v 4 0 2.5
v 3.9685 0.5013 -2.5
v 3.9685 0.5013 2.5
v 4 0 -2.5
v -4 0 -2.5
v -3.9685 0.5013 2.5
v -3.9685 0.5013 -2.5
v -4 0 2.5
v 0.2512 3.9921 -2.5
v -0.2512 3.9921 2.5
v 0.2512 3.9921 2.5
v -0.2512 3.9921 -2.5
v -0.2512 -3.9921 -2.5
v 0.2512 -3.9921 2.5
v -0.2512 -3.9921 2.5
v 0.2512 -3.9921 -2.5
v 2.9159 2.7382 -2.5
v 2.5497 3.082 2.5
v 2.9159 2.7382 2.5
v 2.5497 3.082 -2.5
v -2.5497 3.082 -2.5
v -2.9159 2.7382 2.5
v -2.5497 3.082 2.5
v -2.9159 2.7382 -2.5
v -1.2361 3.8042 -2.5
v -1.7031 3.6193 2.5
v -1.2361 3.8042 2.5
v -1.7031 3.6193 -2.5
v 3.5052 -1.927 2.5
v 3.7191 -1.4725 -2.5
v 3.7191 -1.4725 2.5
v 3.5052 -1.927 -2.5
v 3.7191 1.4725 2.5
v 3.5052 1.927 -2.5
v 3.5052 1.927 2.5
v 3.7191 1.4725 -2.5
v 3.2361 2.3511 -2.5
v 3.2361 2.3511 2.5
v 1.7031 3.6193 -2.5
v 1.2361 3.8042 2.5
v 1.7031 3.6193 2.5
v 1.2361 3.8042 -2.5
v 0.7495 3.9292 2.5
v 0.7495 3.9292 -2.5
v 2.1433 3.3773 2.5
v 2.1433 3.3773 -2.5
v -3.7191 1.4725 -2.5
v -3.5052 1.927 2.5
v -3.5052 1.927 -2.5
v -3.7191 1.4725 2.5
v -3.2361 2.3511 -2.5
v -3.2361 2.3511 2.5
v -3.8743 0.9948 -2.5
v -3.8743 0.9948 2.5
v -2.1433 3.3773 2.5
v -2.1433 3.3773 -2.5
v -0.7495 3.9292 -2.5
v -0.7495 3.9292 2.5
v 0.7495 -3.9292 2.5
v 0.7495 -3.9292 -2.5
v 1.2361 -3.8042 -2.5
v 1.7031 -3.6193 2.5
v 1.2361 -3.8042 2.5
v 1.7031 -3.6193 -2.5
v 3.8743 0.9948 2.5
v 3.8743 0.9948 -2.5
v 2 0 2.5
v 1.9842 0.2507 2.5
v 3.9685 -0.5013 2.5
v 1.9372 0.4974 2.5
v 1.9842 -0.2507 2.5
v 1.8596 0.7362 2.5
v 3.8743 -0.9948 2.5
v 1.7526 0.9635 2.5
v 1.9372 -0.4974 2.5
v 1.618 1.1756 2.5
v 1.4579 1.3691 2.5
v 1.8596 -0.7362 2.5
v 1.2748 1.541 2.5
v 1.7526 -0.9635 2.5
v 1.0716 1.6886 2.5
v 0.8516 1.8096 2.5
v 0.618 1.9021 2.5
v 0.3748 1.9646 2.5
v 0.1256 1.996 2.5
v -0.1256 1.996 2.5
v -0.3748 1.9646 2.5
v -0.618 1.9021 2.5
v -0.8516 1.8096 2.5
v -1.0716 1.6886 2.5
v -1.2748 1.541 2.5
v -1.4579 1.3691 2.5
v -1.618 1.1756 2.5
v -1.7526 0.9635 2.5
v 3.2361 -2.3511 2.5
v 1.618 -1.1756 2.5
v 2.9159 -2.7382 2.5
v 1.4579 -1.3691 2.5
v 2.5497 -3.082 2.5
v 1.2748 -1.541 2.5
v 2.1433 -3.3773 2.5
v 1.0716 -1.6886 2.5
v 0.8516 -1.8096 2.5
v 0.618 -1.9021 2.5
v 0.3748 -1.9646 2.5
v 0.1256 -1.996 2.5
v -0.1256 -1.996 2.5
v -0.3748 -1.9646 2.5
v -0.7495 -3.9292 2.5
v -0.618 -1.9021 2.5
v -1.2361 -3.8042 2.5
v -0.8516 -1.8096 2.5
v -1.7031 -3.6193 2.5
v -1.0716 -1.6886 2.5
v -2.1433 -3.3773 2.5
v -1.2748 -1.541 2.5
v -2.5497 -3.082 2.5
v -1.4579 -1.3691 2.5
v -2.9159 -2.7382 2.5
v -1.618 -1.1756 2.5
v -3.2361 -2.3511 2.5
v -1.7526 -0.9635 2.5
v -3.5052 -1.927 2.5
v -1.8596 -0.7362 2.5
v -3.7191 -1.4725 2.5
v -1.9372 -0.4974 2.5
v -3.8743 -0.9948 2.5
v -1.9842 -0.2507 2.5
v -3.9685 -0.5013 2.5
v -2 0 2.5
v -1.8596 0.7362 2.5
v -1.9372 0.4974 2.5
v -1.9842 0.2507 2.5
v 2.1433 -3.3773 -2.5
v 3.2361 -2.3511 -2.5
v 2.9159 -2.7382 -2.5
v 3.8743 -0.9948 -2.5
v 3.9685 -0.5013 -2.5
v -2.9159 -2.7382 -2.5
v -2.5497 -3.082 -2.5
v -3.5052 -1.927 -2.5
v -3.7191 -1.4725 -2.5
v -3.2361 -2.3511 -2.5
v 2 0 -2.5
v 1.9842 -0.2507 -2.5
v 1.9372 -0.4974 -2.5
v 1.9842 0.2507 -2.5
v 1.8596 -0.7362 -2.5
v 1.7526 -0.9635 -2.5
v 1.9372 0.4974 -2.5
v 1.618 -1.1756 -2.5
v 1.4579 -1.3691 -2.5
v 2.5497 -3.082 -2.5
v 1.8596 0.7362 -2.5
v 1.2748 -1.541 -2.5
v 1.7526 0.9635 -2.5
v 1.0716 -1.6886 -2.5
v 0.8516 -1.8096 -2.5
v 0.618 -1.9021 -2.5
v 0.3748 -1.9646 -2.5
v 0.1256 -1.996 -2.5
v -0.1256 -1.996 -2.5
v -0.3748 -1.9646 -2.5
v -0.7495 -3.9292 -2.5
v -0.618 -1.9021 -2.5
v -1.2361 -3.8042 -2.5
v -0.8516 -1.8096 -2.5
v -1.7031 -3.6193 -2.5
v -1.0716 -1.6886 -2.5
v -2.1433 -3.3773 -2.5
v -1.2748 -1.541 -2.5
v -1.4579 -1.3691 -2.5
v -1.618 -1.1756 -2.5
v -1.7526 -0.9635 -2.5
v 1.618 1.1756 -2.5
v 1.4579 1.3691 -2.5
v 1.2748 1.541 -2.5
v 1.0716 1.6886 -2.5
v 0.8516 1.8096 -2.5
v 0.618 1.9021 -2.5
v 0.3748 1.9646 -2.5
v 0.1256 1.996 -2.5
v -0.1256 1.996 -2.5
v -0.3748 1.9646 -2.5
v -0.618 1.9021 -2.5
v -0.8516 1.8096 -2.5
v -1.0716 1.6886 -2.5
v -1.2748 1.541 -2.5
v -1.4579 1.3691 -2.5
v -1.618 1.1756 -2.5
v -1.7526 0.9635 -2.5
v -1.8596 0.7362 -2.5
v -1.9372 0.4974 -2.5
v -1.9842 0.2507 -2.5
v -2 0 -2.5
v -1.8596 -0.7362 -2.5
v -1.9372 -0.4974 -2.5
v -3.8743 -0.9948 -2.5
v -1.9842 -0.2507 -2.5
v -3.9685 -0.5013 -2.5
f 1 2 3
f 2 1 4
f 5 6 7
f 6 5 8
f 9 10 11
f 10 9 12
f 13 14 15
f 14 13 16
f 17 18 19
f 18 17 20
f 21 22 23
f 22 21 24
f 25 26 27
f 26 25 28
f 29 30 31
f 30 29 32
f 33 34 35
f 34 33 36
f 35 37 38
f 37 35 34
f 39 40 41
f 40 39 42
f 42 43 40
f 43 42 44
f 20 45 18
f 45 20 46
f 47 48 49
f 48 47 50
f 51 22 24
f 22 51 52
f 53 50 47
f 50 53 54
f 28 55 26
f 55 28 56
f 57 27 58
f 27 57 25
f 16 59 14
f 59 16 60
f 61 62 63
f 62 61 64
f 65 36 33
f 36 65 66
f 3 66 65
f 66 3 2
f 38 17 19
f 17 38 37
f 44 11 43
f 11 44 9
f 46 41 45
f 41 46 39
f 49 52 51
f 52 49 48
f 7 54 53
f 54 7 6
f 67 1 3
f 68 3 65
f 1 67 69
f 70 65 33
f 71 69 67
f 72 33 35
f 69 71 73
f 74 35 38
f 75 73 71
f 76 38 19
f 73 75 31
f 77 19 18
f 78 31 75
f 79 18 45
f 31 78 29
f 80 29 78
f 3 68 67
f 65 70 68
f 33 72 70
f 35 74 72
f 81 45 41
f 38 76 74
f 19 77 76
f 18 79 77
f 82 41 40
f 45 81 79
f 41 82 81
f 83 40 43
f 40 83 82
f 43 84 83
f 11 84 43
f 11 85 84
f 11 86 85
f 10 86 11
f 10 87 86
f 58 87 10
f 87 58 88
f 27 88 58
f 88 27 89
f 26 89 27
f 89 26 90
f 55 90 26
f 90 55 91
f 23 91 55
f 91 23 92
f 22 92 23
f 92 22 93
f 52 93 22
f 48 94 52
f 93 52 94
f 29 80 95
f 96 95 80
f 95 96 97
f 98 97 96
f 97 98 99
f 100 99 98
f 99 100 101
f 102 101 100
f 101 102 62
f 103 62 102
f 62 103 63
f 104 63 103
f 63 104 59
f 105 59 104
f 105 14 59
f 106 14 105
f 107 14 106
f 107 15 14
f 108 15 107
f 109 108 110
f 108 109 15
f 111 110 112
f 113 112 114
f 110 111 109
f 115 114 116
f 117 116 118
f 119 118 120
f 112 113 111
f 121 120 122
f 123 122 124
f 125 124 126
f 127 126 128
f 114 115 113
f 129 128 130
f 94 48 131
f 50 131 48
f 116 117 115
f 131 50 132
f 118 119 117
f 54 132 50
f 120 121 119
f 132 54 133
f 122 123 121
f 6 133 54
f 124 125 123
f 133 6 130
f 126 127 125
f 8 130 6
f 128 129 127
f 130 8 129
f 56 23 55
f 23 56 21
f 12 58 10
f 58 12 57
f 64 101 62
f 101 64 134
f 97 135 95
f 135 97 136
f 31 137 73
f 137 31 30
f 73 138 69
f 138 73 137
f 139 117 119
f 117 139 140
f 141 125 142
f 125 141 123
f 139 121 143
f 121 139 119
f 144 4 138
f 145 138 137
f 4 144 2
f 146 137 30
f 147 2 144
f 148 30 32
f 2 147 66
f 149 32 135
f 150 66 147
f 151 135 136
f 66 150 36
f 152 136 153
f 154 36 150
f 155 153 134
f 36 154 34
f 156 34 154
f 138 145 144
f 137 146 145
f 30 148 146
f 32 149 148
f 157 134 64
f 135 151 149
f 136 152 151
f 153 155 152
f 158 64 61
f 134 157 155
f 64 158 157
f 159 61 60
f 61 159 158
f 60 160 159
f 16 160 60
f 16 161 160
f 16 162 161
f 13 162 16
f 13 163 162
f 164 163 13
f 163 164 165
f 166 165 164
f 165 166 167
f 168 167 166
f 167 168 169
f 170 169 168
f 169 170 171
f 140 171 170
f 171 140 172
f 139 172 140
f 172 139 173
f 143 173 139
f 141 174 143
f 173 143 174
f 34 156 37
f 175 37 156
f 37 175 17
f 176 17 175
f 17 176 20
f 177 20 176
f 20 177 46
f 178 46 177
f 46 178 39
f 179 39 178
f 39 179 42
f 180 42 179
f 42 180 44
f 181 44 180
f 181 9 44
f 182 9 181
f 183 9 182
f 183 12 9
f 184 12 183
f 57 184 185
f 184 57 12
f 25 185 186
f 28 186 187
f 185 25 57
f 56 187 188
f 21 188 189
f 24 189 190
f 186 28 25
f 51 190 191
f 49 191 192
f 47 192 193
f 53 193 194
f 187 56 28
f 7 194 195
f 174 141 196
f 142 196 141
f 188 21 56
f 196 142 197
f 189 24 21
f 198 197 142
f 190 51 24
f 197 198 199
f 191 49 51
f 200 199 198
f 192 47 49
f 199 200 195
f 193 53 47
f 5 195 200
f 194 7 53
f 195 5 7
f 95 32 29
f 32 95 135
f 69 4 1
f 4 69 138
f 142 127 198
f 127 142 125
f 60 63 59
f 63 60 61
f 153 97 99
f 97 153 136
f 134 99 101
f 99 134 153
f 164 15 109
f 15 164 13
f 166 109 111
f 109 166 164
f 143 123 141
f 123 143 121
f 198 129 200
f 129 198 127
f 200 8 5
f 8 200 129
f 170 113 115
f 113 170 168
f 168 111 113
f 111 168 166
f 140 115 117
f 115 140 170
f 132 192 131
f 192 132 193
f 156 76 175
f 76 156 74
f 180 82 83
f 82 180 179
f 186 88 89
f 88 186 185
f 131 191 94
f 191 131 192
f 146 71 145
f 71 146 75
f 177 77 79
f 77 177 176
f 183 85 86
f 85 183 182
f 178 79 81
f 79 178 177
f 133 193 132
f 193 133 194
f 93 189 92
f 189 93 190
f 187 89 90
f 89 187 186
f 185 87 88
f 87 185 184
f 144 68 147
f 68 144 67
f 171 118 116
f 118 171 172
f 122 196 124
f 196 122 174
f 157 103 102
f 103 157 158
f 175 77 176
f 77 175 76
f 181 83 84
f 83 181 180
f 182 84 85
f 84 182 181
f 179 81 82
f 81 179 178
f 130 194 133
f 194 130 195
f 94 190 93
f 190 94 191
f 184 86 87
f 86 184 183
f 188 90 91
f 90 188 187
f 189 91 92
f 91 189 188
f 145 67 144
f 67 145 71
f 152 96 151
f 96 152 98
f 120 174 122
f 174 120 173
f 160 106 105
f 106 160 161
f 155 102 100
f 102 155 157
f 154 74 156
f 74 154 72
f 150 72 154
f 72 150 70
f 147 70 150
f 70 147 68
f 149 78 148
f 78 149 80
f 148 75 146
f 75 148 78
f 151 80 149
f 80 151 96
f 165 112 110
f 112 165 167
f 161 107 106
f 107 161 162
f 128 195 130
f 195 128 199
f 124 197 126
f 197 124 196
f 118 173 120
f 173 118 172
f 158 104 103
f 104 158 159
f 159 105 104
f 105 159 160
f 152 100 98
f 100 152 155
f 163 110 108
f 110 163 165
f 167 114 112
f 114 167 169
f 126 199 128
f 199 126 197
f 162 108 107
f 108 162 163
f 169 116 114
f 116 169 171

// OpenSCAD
$fn = 50;


difference() {
	union() {
		translate(v = [0, 0, -2.5000000000]) {
			cylinder(h = 5, r = 4.0000000000);
		}
	}
	union() {
		translate(v = [0, 0, -100.0000000000]) {
			cylinder(h = 200, r = 2);
		}
	}
}
